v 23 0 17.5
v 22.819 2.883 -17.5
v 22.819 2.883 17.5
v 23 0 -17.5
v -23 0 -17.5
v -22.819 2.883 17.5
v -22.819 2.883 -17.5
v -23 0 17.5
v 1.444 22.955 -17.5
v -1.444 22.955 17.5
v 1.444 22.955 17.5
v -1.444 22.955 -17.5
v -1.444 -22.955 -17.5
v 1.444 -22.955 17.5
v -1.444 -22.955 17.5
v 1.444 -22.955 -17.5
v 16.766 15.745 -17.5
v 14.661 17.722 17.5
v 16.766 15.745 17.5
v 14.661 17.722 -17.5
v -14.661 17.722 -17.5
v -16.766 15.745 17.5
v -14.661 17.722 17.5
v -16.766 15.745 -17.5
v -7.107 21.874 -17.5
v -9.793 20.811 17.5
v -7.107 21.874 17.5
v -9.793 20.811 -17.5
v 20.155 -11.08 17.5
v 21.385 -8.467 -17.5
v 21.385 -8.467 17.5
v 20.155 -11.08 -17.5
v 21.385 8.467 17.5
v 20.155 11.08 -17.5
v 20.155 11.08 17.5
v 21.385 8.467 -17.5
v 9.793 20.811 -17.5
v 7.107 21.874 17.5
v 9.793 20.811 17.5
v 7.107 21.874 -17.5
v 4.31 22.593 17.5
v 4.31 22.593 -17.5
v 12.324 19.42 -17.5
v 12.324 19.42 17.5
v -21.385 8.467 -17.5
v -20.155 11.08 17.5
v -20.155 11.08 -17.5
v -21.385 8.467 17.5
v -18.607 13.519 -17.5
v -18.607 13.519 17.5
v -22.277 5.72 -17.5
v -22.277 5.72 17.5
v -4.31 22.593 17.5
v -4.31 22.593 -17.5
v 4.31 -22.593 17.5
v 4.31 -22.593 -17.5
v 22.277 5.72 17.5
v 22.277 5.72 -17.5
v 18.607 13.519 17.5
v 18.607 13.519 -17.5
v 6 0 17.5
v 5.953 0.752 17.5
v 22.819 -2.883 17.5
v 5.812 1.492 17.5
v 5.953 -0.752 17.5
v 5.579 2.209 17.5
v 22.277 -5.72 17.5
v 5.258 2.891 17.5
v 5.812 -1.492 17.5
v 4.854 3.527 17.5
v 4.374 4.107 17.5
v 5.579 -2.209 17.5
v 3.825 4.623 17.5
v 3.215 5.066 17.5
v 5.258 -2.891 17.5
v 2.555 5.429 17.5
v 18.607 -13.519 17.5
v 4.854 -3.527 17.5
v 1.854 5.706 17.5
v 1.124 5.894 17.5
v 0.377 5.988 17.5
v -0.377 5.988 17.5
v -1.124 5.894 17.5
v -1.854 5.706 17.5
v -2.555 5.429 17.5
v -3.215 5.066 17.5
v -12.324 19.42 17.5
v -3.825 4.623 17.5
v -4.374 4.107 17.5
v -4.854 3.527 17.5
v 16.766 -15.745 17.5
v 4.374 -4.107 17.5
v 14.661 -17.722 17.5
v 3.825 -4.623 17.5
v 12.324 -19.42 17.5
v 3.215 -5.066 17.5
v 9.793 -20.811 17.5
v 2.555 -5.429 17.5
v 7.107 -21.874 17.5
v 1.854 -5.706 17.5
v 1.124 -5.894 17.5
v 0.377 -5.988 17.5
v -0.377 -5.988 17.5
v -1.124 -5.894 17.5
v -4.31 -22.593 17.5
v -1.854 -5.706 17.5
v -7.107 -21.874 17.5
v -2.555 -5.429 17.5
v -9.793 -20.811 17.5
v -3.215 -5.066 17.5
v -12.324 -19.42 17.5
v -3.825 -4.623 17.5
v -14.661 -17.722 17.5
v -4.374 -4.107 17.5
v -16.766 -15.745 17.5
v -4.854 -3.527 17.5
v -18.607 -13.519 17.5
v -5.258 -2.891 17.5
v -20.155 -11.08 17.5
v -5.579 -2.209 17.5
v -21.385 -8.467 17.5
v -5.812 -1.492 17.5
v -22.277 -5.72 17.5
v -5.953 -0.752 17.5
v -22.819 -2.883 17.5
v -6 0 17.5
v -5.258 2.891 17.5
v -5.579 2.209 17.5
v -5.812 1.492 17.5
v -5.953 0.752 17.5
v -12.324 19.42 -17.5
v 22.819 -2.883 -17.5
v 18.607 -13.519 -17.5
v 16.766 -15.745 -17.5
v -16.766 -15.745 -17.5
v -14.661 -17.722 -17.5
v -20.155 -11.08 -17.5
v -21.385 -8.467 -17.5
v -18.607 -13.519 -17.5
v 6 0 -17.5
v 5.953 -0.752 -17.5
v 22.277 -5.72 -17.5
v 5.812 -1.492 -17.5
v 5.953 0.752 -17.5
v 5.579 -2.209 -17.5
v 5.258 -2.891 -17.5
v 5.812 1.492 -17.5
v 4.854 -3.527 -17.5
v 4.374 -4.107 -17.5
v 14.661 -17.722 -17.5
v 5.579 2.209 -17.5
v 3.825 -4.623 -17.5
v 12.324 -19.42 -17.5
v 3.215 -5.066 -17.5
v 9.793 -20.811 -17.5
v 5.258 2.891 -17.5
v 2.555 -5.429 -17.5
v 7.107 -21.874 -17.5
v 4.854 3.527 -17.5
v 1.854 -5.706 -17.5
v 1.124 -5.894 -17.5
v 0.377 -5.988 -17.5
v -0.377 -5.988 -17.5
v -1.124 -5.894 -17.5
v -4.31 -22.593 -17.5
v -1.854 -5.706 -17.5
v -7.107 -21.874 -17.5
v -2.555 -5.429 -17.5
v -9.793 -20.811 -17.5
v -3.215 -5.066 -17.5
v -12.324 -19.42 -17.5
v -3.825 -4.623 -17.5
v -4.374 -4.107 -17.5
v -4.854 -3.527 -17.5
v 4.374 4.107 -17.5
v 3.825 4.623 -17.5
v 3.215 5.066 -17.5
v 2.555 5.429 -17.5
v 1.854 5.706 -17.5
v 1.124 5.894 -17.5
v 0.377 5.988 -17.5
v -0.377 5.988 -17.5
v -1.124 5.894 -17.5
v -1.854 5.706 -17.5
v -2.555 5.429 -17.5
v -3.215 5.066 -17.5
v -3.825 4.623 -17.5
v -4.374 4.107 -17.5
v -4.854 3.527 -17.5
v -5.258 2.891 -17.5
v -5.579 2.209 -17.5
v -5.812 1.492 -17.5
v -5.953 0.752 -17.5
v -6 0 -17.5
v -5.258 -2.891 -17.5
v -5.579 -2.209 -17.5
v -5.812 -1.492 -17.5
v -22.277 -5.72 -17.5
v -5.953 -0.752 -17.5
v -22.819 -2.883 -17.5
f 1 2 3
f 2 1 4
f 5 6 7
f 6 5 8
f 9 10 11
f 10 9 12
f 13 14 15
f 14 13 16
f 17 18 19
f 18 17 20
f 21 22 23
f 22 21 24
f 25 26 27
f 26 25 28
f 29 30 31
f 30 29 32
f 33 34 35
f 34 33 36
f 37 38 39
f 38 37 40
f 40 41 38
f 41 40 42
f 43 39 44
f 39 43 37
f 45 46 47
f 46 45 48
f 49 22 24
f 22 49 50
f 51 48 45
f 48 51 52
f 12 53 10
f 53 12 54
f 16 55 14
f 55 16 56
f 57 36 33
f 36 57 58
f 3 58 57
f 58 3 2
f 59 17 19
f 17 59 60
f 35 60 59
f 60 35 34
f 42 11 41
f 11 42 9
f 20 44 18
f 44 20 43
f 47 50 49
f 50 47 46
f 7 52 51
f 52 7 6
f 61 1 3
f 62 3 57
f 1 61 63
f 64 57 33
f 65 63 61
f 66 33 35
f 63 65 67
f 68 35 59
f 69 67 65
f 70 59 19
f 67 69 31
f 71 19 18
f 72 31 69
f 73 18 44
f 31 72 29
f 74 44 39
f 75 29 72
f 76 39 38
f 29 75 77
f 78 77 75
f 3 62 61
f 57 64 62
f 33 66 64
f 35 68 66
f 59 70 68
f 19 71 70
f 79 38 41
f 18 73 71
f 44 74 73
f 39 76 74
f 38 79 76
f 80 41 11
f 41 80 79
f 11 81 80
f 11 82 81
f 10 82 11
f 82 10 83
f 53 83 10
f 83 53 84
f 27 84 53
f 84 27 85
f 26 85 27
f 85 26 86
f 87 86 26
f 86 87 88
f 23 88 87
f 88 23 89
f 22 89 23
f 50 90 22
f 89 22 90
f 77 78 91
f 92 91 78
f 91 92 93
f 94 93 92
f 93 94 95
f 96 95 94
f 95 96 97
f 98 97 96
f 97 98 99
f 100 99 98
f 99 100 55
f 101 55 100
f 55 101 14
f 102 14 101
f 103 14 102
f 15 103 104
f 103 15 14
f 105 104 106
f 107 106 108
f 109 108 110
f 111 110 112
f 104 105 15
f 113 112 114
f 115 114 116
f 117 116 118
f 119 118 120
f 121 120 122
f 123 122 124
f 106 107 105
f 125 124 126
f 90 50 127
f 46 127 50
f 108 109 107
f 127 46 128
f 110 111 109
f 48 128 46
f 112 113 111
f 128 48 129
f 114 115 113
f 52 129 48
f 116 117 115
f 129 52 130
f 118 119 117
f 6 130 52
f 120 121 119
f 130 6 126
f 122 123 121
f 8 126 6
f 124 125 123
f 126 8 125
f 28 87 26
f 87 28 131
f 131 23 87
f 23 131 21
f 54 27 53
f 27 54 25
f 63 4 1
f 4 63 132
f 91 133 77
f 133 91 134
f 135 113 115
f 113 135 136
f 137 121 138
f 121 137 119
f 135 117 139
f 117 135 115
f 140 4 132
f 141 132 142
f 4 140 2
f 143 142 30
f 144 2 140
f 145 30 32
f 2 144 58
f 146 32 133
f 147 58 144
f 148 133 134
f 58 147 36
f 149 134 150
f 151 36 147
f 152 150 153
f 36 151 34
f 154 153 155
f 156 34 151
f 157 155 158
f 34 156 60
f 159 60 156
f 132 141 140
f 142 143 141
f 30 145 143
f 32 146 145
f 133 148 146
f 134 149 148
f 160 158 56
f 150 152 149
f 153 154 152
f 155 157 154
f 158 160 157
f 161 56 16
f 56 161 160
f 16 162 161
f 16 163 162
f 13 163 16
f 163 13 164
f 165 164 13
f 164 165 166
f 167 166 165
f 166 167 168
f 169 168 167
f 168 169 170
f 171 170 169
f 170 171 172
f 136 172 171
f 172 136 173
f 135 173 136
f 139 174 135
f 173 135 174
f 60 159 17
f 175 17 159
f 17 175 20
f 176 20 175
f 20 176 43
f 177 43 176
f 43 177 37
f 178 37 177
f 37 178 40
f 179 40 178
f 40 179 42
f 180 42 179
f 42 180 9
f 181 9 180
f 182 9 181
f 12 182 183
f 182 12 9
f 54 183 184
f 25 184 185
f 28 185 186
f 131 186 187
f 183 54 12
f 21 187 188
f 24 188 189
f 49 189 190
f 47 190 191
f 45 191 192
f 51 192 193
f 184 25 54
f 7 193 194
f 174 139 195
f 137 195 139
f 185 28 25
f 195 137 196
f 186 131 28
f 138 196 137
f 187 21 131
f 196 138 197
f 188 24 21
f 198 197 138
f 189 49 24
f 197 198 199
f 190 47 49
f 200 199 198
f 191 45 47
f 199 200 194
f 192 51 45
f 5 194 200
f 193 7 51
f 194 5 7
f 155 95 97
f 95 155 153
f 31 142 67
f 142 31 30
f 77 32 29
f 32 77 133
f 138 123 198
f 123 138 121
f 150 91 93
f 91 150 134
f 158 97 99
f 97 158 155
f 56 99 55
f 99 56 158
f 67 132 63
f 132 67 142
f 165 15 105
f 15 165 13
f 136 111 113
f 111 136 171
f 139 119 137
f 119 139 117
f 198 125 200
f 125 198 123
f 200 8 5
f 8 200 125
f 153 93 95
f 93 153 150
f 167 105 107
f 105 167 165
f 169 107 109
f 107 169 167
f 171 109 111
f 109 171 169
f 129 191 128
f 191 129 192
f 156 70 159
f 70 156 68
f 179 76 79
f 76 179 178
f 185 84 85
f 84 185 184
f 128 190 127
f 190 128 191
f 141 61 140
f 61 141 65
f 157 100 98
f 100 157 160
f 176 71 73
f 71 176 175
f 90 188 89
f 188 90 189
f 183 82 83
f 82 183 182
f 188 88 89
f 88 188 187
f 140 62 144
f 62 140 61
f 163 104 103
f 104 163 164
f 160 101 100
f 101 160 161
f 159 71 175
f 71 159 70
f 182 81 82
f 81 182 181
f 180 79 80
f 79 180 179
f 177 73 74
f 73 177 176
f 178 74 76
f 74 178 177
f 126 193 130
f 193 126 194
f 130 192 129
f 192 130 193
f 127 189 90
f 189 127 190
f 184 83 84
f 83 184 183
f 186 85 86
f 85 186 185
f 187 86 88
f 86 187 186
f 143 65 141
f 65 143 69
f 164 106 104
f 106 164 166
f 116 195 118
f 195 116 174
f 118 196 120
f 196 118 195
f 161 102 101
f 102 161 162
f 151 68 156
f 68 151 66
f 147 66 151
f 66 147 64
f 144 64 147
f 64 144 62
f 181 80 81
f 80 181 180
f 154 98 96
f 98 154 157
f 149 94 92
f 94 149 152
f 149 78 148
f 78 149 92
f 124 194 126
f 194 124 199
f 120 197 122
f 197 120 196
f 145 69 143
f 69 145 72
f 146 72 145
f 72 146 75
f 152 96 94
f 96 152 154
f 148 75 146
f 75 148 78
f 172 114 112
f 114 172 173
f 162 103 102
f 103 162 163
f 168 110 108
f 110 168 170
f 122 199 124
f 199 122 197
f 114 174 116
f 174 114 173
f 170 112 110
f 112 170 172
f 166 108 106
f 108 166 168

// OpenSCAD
$fn = 50;


difference() {
	union() {
		translate(v = [0, 0, -17.5000000000]) {
			cylinder(h = 35, r = 23.0000000000);
		}
	}
	union() {
		translate(v = [0, 0, -100.0000000000]) {
			cylinder(h = 200, r = 6);
		}
	}
}
